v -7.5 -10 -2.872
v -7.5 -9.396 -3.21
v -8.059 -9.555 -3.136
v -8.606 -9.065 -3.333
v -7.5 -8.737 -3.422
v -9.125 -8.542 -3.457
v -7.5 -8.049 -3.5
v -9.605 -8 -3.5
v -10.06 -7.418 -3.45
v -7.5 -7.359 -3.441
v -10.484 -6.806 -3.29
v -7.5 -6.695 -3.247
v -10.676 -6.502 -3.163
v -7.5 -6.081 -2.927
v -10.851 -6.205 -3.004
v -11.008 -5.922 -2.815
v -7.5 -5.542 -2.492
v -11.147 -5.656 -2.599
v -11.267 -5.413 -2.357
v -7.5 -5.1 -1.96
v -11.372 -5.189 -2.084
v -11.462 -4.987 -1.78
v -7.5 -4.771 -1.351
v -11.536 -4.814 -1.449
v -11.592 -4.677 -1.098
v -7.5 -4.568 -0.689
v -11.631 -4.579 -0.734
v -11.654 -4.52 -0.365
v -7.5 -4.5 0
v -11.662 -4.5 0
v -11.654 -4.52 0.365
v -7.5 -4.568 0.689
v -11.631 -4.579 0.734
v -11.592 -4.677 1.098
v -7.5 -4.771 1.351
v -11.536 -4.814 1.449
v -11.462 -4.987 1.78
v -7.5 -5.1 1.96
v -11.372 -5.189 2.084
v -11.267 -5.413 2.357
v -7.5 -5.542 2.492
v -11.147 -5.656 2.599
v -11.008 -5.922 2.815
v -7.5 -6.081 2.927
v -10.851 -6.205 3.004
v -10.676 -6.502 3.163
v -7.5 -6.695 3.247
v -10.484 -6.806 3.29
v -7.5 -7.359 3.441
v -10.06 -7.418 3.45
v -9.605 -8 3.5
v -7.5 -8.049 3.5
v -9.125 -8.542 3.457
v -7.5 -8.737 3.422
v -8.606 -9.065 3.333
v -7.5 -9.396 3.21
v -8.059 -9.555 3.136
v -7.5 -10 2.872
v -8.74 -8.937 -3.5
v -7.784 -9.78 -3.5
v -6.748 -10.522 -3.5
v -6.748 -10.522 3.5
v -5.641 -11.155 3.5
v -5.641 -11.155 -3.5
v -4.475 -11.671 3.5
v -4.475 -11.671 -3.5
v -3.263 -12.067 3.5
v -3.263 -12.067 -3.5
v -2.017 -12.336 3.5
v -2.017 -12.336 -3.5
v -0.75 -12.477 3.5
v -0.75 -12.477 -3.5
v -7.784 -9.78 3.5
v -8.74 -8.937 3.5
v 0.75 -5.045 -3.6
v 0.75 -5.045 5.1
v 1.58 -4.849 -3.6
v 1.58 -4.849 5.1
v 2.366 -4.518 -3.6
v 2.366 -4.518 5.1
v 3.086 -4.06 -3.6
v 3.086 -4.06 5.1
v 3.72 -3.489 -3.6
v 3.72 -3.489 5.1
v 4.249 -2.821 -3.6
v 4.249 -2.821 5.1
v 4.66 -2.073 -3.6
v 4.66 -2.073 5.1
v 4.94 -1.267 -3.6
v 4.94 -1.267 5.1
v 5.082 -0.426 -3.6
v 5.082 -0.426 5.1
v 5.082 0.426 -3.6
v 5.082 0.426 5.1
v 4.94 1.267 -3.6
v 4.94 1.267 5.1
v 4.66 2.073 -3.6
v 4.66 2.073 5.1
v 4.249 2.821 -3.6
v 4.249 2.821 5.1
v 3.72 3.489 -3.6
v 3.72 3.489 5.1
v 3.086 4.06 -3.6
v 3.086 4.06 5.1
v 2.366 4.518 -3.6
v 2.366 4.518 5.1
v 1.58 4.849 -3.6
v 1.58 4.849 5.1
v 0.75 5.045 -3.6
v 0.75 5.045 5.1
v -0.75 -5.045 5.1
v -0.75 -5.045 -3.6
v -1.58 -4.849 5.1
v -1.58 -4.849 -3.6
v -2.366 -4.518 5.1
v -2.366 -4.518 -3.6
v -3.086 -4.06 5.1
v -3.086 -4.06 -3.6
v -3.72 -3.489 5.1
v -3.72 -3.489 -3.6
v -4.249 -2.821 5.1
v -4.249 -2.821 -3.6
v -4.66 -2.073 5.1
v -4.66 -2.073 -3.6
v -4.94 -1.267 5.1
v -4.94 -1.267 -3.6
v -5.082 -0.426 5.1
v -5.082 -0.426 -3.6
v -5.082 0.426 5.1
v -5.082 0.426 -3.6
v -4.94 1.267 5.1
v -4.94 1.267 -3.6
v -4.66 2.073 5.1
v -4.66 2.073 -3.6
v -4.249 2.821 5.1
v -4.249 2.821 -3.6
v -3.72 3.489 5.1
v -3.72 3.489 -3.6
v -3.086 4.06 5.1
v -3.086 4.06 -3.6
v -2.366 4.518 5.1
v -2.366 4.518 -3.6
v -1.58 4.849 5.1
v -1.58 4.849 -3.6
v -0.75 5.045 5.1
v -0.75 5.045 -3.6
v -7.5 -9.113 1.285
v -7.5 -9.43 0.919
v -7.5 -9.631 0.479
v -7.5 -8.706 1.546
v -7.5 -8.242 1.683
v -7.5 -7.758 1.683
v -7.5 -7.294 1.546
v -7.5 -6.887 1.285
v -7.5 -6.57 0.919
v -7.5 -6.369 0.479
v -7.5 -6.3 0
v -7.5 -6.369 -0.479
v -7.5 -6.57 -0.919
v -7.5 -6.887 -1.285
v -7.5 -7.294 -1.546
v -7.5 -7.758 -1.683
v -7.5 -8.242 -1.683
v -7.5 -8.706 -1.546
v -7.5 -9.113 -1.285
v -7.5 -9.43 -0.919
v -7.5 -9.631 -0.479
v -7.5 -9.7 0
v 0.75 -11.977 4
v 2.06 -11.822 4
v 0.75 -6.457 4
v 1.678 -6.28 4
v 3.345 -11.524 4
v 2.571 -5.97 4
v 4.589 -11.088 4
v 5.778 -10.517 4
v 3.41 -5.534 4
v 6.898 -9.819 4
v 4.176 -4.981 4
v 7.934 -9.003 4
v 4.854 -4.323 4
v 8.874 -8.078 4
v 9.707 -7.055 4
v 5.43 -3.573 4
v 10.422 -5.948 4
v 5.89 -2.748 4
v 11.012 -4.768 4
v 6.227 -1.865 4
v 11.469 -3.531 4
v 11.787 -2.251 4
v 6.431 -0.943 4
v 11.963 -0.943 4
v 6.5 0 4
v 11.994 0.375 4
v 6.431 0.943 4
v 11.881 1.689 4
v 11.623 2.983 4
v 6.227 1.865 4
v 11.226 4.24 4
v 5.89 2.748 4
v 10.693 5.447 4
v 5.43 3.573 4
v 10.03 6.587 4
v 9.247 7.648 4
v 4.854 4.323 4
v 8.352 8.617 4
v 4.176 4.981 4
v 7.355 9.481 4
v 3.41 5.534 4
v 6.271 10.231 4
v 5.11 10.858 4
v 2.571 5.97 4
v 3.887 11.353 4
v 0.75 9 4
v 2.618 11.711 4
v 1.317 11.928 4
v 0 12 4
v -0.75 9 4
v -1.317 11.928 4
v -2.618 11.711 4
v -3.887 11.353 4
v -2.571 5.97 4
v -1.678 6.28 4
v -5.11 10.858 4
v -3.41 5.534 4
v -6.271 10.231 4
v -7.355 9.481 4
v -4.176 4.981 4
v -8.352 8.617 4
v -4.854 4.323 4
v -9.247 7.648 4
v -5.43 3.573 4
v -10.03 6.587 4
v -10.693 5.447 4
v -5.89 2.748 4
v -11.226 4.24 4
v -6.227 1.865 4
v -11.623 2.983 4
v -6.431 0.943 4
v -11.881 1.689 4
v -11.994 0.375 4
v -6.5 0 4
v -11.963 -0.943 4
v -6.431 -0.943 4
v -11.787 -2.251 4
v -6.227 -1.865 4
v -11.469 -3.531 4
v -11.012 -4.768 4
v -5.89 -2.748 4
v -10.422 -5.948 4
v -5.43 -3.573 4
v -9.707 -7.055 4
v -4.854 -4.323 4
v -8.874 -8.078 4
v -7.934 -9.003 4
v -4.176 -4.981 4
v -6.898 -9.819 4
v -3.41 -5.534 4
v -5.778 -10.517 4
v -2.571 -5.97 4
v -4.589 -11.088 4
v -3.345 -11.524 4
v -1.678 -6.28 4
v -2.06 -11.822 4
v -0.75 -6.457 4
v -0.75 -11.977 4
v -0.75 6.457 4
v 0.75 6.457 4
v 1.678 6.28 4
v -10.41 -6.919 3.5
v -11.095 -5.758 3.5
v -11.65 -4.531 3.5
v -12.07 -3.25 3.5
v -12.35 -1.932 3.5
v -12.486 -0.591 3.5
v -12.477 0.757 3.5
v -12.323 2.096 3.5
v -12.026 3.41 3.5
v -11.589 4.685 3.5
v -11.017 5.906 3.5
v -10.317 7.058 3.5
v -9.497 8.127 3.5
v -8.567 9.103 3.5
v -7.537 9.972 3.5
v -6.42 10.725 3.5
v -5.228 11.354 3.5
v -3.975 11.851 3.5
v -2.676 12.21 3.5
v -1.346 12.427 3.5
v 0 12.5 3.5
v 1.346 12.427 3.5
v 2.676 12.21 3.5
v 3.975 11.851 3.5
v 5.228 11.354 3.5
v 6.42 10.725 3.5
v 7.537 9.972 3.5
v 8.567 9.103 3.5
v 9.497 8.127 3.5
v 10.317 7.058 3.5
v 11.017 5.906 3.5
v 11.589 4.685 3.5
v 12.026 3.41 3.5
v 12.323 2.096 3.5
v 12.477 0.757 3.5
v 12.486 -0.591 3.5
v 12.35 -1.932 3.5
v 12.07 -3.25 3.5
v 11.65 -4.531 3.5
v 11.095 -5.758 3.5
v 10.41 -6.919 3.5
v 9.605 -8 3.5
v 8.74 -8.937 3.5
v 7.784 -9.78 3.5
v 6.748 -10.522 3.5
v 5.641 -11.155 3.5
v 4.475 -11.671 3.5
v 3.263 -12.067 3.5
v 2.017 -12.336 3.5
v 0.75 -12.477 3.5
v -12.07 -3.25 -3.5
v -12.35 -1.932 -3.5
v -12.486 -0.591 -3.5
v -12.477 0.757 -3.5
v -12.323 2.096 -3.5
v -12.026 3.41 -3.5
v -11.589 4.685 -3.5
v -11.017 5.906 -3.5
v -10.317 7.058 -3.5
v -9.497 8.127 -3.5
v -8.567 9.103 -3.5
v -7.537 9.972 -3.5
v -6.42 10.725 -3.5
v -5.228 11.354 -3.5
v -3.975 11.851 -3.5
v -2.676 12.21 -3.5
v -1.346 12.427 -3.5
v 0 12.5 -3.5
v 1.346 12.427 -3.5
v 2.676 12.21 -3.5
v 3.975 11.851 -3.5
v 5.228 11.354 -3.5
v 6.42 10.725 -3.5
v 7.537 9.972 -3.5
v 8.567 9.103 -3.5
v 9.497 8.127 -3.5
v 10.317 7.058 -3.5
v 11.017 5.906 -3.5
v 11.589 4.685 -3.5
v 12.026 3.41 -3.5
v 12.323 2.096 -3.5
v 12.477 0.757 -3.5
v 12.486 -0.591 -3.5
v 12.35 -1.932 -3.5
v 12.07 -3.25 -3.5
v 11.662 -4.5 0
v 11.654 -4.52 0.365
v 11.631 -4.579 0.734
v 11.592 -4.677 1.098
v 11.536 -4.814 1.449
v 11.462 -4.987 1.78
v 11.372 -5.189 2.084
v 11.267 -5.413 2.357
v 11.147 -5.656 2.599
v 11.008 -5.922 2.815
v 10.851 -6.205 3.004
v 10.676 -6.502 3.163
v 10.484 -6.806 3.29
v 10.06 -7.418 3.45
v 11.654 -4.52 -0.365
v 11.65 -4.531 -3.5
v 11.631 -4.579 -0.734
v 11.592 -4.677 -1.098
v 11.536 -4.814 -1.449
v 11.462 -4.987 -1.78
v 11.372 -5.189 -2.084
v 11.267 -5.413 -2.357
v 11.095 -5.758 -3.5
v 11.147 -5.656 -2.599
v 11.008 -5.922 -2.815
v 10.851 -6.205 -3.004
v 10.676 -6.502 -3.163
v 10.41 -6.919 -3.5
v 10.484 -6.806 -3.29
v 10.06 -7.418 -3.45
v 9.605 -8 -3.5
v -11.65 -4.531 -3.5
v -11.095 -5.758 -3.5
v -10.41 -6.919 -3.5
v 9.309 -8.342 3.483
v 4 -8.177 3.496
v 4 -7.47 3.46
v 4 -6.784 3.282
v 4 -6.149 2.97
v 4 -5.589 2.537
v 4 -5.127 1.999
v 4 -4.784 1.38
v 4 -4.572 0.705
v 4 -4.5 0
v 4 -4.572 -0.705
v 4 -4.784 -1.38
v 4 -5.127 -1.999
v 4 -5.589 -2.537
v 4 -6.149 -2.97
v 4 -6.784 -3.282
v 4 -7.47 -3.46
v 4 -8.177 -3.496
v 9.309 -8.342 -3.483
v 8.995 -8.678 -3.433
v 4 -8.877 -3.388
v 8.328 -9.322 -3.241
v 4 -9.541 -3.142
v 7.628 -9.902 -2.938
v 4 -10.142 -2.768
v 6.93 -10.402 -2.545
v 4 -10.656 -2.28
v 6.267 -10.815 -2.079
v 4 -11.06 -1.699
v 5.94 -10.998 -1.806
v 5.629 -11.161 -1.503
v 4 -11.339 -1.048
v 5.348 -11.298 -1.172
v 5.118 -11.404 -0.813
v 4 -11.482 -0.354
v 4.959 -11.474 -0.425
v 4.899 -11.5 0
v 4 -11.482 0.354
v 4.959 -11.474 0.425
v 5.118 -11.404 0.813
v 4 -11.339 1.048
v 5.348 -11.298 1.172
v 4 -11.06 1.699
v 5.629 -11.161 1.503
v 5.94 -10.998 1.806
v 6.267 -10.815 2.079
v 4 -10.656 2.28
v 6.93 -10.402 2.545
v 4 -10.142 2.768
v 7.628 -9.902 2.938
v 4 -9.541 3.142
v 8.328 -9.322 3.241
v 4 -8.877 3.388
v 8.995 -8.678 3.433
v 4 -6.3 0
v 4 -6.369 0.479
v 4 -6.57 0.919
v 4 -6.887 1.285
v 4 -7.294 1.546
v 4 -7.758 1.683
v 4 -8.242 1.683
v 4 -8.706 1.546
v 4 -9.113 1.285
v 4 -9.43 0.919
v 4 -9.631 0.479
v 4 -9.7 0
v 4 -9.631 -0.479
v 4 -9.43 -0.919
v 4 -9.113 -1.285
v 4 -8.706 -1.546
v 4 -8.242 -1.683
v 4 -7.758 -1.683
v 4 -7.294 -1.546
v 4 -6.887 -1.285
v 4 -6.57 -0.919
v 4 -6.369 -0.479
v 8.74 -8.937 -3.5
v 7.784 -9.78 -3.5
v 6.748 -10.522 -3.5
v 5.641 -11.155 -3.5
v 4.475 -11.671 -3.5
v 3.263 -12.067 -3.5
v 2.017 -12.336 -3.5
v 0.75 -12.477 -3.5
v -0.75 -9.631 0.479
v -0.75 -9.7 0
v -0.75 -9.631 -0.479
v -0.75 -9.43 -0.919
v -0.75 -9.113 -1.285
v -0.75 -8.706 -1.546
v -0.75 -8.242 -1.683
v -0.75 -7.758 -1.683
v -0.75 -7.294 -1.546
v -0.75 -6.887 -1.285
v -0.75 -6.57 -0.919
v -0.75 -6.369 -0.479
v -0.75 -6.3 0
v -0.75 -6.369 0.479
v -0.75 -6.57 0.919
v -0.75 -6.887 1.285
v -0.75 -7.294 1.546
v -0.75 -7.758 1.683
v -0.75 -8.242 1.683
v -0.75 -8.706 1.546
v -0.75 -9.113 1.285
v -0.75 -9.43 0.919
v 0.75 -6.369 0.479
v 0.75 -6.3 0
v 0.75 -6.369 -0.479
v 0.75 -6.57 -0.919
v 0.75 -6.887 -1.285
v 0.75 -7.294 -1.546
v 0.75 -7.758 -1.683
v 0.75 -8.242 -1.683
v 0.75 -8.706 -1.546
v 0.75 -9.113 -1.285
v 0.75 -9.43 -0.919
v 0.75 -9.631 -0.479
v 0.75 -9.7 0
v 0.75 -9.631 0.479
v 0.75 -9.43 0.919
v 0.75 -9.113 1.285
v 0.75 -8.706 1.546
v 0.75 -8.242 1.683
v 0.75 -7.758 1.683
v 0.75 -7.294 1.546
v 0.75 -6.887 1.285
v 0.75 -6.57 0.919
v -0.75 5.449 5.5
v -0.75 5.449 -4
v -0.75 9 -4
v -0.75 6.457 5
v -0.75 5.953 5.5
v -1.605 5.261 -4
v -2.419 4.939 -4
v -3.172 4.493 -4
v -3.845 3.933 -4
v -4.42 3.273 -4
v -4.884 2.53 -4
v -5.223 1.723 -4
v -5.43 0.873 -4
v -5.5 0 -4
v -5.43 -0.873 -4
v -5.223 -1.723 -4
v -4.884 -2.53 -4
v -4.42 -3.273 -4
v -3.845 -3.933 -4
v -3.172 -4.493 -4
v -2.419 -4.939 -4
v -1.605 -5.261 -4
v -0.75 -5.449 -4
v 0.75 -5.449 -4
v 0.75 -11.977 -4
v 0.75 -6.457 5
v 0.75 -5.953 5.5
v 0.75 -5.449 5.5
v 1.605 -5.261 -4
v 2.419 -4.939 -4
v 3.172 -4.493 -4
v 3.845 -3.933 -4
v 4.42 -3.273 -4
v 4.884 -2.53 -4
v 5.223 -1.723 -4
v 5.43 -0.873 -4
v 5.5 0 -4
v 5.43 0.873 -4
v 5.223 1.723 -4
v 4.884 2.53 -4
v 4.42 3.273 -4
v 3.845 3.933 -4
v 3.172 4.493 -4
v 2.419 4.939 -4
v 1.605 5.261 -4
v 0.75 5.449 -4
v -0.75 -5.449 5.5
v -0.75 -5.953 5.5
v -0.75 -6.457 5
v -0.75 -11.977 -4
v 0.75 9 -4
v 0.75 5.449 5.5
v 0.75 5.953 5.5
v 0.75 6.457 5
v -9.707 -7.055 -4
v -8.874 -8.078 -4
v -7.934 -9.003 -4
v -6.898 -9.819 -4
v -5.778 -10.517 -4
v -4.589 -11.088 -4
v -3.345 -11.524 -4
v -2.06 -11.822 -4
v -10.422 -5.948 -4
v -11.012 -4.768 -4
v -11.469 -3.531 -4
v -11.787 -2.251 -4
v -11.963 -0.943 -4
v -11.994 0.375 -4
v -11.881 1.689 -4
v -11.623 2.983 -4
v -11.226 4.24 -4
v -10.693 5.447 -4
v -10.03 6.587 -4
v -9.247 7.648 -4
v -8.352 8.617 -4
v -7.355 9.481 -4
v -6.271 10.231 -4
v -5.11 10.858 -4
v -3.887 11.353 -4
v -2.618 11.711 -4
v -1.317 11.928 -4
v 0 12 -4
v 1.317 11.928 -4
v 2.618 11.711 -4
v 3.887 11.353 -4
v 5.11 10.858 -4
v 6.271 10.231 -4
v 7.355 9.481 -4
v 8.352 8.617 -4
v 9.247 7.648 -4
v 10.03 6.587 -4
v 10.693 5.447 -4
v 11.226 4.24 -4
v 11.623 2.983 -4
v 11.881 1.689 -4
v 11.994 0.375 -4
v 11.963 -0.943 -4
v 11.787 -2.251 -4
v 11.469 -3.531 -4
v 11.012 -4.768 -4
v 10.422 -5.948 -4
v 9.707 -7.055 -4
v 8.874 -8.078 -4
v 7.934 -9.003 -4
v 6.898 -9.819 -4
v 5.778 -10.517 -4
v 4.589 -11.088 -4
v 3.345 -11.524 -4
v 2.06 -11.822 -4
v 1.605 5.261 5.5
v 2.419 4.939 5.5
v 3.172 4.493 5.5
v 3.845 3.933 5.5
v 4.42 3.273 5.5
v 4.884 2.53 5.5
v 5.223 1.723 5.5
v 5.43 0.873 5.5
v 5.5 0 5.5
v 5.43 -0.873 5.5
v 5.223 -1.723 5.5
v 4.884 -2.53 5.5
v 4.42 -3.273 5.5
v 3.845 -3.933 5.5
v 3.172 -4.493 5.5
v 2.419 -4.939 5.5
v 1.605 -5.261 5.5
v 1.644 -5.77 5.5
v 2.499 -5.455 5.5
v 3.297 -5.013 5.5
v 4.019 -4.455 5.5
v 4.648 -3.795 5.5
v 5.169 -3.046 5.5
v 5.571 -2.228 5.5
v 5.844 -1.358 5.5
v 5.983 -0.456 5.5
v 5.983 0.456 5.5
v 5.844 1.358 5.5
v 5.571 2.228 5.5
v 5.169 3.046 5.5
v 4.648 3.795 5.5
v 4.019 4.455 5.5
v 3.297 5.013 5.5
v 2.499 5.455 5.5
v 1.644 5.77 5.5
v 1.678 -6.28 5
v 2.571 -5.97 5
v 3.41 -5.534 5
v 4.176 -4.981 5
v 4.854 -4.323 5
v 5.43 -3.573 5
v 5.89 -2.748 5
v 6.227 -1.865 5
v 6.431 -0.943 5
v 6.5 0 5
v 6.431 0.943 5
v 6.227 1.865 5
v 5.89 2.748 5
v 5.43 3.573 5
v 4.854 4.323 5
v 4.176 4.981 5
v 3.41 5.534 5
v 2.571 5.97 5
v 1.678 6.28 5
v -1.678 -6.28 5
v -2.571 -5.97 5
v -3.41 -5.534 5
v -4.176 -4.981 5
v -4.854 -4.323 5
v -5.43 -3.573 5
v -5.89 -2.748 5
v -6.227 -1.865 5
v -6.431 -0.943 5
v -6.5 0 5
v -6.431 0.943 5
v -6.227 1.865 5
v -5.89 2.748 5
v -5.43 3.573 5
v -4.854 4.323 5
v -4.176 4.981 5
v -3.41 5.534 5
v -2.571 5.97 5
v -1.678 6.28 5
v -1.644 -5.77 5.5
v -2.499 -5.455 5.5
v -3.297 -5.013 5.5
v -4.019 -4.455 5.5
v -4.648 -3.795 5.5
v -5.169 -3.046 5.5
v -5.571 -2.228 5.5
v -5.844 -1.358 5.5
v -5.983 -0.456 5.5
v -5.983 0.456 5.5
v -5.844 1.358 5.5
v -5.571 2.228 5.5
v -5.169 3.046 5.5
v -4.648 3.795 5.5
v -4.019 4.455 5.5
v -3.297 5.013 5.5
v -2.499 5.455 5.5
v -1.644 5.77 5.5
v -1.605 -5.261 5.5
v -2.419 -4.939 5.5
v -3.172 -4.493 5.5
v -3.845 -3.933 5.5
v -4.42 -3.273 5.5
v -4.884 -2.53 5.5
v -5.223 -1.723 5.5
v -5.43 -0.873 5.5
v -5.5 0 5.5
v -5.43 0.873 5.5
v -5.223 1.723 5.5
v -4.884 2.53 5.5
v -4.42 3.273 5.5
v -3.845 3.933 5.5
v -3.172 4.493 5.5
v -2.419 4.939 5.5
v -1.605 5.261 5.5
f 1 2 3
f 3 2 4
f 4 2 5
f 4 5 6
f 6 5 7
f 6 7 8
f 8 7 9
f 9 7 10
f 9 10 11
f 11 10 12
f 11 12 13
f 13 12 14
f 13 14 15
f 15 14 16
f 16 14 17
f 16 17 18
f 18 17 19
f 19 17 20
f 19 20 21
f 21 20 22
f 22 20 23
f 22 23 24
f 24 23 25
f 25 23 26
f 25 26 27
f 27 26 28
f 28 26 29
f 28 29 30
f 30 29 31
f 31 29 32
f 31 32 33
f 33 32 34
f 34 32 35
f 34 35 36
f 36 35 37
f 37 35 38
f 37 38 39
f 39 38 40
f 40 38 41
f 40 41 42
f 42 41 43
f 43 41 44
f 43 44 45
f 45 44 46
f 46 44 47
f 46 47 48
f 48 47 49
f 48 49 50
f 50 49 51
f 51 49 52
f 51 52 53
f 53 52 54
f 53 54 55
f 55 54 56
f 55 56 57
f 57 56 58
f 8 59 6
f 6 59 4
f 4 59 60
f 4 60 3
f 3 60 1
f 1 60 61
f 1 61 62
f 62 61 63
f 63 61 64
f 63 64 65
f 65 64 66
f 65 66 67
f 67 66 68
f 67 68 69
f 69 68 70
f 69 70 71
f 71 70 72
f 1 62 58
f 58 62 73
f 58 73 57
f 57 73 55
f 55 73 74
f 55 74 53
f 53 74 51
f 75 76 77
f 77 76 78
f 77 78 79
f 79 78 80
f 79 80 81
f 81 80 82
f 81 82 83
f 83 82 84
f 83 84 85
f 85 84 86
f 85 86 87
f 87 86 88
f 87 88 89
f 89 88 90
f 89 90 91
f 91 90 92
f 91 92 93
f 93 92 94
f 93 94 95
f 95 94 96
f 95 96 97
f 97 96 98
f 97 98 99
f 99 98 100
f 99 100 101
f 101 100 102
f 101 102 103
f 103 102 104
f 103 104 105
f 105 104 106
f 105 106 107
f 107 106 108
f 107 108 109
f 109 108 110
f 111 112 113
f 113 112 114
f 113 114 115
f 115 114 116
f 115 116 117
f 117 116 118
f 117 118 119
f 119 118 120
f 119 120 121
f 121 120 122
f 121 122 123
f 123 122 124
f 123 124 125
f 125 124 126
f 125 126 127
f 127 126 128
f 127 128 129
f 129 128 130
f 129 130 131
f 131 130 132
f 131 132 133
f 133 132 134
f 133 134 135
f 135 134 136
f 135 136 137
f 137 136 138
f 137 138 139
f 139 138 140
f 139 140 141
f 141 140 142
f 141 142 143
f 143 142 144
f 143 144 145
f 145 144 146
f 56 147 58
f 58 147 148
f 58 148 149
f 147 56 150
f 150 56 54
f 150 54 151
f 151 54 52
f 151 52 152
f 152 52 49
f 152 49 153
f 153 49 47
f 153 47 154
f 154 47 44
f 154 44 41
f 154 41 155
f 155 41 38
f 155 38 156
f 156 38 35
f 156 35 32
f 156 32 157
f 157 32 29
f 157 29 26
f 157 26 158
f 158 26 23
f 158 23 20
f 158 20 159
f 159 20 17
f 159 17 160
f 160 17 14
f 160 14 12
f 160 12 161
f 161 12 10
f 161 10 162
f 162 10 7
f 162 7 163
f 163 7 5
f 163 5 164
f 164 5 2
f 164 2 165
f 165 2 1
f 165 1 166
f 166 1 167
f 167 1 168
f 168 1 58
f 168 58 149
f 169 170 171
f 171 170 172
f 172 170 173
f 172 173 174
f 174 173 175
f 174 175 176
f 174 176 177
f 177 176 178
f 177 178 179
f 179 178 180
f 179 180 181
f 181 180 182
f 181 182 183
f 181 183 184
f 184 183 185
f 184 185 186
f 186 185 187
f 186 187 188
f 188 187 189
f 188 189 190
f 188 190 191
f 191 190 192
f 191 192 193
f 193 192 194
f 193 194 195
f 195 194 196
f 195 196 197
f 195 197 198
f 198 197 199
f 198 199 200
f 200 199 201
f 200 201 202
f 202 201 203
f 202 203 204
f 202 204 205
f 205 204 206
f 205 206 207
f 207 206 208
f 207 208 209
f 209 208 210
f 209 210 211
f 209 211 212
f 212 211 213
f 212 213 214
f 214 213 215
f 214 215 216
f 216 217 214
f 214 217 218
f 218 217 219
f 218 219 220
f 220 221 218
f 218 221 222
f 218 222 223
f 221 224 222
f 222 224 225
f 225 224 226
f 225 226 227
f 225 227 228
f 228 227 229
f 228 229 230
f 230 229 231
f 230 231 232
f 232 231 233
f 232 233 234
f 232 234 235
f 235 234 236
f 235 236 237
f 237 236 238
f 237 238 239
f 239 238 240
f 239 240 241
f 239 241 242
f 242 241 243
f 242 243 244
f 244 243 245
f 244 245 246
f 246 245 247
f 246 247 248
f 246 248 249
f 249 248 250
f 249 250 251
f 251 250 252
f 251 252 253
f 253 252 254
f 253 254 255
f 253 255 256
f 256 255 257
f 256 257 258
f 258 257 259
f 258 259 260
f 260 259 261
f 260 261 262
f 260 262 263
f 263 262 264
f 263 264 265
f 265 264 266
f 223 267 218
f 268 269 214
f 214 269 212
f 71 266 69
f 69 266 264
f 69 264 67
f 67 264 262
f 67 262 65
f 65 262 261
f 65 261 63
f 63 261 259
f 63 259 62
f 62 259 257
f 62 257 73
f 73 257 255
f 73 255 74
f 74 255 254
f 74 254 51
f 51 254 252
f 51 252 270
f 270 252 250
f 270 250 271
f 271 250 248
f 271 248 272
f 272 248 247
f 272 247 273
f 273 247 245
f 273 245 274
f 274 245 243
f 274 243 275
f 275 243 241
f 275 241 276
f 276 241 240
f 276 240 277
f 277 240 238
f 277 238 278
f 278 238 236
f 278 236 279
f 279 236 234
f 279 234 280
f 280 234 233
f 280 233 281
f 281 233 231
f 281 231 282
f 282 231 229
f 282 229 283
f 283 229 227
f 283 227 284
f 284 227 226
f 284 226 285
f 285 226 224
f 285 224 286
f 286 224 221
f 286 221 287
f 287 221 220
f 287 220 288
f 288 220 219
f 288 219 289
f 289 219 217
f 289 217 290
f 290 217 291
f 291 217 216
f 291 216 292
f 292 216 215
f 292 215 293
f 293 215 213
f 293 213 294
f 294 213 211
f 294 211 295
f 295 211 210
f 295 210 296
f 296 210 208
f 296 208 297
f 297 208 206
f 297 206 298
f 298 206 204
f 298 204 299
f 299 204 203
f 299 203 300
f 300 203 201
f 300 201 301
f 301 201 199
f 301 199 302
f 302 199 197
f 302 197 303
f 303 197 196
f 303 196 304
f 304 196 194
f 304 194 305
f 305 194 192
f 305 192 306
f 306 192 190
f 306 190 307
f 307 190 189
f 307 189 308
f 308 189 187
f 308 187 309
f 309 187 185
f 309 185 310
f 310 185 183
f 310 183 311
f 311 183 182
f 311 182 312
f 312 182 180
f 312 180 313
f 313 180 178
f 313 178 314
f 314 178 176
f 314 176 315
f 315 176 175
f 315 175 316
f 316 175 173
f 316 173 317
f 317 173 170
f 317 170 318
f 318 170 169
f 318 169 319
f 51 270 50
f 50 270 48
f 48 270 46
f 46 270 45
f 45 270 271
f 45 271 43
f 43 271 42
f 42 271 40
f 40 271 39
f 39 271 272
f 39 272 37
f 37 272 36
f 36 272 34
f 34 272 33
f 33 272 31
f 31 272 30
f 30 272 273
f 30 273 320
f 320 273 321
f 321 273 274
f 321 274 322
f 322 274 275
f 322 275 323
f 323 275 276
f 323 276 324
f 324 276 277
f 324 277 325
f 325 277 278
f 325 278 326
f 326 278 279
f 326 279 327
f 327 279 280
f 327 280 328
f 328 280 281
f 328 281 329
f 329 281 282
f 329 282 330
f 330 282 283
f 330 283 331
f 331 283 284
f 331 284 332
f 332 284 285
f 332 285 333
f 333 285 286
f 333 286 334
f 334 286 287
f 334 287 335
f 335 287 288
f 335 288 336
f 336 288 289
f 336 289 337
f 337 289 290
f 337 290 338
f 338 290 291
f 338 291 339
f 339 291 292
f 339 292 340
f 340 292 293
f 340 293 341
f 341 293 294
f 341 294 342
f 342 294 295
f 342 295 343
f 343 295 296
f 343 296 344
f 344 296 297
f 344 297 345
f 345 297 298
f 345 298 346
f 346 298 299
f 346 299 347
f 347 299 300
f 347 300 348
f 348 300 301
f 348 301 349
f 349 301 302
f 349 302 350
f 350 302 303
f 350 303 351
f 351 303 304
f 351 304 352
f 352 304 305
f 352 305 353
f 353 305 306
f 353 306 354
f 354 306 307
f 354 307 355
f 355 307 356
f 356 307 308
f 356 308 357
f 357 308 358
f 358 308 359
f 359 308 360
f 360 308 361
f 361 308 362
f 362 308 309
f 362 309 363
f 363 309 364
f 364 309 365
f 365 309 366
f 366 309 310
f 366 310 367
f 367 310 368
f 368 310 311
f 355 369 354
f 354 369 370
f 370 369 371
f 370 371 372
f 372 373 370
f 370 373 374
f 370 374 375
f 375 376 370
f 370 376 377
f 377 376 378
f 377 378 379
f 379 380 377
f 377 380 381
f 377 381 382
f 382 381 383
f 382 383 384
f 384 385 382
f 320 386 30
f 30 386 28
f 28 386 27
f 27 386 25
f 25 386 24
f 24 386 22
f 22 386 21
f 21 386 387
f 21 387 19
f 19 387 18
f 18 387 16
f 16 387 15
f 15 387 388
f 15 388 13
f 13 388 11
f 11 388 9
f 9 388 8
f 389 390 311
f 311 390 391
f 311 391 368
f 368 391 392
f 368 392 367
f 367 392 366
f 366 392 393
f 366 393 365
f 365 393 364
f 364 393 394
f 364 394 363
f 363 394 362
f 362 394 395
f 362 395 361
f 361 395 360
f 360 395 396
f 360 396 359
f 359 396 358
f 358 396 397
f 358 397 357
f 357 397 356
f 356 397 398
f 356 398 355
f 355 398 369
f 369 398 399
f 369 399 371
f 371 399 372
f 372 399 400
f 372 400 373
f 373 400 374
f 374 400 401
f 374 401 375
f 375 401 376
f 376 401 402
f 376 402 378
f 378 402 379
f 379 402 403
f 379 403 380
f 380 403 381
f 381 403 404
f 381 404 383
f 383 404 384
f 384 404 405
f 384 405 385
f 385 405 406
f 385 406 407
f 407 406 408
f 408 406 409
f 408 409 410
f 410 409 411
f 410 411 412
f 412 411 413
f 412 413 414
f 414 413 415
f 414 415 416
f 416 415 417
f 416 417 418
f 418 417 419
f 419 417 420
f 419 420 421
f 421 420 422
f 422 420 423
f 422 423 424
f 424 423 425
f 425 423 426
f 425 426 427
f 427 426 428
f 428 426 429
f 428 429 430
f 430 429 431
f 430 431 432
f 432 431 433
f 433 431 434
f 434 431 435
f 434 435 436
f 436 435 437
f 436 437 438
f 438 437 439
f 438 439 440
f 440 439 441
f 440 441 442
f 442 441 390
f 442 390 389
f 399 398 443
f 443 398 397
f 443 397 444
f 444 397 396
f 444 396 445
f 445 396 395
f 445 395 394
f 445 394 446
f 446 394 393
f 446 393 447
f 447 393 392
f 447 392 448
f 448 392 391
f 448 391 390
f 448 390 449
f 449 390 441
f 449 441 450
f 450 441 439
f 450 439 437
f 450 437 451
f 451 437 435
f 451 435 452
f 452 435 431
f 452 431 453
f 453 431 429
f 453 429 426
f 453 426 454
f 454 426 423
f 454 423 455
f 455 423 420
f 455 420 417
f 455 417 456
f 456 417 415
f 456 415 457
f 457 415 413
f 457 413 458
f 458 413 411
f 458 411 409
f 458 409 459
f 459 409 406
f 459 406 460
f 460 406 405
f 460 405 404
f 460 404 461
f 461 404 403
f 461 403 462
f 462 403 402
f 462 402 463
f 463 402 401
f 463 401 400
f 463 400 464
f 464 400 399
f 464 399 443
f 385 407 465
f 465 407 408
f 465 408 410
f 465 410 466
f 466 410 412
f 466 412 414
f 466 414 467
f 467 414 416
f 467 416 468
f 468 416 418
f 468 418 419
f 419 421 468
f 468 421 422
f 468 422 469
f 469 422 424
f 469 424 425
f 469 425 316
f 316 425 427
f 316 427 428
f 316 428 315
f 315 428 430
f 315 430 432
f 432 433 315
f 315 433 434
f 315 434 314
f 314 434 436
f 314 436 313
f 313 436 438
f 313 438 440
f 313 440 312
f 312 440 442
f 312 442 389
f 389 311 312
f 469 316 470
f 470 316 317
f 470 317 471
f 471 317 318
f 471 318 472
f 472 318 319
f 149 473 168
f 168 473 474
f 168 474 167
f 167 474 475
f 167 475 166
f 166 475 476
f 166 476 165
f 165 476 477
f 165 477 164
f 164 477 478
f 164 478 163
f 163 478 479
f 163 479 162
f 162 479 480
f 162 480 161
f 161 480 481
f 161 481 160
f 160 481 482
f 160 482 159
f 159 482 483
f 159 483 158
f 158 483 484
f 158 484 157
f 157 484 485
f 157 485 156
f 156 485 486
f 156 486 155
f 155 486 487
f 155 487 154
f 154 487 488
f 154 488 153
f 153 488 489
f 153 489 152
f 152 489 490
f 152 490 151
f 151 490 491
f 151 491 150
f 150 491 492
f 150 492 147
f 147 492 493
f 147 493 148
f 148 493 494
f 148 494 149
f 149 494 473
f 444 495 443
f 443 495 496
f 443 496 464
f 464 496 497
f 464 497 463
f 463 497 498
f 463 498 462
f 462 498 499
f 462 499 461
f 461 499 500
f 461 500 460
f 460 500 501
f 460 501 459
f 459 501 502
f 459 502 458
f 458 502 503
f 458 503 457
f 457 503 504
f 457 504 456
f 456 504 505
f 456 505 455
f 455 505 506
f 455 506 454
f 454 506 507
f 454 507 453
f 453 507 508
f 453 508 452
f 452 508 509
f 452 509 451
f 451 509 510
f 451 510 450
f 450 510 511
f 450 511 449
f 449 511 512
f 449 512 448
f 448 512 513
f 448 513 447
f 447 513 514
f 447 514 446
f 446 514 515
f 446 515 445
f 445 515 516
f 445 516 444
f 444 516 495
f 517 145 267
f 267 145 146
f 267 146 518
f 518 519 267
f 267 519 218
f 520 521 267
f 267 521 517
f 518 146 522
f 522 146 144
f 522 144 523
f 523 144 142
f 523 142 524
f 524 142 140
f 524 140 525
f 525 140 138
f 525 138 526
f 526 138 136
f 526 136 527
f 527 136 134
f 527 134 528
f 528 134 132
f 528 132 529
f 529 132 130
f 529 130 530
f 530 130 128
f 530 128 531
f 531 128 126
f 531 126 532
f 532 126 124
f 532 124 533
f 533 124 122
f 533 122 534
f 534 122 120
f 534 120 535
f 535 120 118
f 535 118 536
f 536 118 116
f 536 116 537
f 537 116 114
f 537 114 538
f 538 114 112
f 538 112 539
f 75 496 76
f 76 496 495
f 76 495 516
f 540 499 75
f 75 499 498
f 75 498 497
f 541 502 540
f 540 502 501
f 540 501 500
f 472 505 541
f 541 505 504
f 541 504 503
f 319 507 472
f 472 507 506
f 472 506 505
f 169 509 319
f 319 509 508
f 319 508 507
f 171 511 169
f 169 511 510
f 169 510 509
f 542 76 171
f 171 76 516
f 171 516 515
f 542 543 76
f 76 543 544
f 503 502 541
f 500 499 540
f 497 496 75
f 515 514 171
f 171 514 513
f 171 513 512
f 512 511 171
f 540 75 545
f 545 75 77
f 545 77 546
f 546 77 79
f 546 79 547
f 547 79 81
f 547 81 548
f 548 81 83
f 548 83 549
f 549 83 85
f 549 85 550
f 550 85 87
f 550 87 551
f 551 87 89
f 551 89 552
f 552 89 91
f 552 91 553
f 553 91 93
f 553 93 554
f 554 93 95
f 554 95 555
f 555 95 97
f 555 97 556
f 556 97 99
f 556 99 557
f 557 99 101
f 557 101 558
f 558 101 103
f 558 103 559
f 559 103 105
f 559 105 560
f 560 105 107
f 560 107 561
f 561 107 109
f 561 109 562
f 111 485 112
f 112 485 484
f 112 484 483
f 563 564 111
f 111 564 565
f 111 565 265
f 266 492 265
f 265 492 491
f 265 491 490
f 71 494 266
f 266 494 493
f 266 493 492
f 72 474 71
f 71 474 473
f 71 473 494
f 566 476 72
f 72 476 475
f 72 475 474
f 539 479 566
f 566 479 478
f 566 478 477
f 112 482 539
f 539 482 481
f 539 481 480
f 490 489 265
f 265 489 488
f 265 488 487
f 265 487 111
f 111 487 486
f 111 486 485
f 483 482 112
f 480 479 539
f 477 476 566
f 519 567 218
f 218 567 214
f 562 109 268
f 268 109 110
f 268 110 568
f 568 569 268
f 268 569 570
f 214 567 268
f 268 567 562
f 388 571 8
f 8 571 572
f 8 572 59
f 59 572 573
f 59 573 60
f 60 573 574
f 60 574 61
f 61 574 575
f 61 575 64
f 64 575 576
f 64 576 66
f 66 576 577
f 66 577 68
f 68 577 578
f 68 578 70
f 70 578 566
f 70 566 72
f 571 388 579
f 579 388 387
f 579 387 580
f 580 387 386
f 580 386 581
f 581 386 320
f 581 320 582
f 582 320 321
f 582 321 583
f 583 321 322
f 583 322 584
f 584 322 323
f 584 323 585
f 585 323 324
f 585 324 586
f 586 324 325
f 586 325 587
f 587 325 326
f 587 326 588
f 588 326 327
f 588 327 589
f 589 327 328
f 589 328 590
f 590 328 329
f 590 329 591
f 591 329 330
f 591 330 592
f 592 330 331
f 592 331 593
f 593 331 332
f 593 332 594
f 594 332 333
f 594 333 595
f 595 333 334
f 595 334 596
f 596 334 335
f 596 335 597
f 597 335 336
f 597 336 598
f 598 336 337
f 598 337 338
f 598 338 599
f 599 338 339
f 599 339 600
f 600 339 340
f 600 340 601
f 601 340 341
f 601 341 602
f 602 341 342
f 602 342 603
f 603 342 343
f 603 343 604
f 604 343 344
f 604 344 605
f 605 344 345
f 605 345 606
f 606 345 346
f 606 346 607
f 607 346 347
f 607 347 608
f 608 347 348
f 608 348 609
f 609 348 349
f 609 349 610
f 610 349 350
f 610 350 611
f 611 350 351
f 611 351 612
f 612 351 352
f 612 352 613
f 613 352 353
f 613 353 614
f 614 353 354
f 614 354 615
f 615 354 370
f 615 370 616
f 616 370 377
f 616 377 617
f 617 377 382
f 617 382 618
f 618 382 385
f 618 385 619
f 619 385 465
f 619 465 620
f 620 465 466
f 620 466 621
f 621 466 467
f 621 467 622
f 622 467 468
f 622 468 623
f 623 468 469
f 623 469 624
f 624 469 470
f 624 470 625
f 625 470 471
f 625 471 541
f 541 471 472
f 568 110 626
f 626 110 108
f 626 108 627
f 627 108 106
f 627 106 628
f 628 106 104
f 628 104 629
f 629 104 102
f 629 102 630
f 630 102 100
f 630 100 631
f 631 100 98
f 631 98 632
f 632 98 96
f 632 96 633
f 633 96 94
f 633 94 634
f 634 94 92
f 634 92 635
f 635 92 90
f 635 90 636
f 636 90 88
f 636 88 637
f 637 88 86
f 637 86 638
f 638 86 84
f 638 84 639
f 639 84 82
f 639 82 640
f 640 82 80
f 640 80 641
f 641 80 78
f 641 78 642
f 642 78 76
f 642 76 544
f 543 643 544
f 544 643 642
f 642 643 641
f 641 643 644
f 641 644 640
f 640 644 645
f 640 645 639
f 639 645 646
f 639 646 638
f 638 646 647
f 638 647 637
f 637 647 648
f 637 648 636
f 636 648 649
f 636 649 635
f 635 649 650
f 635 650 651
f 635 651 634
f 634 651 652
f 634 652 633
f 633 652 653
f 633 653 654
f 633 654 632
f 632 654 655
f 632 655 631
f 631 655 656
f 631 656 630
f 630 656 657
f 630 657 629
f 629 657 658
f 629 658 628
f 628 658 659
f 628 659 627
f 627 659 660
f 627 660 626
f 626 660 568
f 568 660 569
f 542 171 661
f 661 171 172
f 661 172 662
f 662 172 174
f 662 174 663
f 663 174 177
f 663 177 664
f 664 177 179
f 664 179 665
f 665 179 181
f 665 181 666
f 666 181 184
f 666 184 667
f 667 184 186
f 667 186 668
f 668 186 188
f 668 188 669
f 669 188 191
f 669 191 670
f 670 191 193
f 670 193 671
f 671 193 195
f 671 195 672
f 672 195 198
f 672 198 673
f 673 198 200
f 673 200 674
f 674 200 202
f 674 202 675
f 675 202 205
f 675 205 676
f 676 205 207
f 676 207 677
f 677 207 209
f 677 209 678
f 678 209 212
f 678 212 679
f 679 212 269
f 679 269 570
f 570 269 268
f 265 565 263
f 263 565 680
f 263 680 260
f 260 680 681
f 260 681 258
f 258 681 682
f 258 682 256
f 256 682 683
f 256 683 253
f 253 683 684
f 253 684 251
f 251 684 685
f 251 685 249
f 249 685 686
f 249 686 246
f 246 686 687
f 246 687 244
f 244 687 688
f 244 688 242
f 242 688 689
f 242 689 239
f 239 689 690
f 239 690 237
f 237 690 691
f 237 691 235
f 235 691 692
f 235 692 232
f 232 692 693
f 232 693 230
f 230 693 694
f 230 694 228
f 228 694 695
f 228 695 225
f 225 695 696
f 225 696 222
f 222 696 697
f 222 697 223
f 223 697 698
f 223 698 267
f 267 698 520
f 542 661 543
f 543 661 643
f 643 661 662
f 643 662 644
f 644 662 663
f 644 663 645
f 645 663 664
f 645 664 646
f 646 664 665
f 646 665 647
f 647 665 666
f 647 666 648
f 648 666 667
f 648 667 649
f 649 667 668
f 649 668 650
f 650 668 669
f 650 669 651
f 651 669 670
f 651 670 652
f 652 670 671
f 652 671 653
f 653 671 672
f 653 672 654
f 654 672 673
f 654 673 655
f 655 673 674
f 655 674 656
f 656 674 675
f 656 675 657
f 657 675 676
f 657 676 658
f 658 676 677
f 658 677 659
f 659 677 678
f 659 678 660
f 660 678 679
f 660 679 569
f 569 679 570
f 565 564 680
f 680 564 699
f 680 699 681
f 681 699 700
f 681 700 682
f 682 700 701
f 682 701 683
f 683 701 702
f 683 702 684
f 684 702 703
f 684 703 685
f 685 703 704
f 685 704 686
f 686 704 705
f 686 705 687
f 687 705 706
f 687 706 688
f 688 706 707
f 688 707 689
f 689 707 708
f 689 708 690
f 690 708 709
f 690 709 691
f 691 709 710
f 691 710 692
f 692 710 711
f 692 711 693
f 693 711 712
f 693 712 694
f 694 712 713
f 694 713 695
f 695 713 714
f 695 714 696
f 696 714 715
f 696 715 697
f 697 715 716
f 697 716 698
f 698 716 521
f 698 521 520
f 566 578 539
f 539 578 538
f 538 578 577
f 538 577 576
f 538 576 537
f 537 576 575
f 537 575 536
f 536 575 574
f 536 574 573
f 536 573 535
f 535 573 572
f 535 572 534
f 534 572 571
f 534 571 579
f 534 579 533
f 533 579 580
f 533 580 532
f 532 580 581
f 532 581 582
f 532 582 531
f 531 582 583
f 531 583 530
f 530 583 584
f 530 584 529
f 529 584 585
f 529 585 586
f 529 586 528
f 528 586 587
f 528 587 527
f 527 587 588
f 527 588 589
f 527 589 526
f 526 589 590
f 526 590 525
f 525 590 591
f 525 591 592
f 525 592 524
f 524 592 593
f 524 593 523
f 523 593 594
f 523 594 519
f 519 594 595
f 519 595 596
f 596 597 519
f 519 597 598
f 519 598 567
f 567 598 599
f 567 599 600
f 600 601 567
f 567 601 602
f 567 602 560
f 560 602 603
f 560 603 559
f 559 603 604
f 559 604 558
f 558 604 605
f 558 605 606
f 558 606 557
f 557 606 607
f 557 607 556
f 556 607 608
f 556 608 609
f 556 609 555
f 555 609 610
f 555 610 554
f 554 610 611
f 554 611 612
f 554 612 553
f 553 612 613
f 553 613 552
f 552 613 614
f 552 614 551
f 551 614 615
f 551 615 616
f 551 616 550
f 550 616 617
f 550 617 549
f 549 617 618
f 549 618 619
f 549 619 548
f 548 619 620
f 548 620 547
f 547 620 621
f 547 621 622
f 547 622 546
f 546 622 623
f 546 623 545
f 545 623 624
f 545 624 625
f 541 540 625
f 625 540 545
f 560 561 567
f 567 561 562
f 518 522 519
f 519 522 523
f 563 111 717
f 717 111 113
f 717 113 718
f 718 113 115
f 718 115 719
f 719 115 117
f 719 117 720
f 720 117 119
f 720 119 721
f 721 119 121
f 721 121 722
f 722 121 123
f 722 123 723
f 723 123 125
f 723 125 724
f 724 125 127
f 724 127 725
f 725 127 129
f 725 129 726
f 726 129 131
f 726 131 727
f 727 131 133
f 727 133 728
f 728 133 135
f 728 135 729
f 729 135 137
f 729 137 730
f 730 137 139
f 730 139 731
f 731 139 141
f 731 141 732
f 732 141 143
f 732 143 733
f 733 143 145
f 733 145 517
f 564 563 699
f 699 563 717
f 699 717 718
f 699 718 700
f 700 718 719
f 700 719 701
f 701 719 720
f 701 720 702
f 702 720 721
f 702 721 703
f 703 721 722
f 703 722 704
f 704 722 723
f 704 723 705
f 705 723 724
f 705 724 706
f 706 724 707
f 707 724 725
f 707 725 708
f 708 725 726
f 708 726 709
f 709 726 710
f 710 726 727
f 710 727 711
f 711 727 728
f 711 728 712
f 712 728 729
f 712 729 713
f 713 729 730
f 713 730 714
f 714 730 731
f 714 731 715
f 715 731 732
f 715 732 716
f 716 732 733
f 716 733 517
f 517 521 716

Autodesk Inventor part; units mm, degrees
sketch "Sketch_1" plane through (0, 0, 0) normal (1, 0, 0) x (0, 1, 0)
  line L0 (0, -4) -> (0, 5.5)
  line L1 (6, 5.5) -> (5.5, 5.5)
  line L2 (5.5, 5.5) -> (5, 5)
  line L3 (5, 5) -> (5, -3.5)
  line L4 (5, -3.5) -> (5.5, -4)
  line L5 (5.5, -4) -> (12, -4)
  line L6 (12, -4) -> (12.5, -3.5)
  line L7 (12.5, -3.5) -> (12.5, 3.5)
  line L8 (12.5, 3.5) -> (12, 4)
  line L9 (12, 4) -> (6.5, 4)
  line L10 (6.5, 4) -> (6.5, 5)
  line L11 (6.5, 5) -> (6, 5.5)
revolve "Revolution1" add sketch "Sketch_1" angle 360 about axis through (0, 0, -4) along (0, 0, -1)
sketch "Sketch_2" plane through (0, 0, 0) normal (0, 0, 1) x (1, 0, 0)
  line L0 (-0.75, -12.5) -> (0.75, -12.5)
  line L1 (0.75, -12.5) -> (0.75, 9)
  line L2 (0.75, 9) -> (-0.75, 9)
  line L3 (-0.75, 9) -> (-0.75, -12.5)
extrude "Extrusion1" cut sketch "Sketch_2" along normal mid plane 32
sketch "Sketch_3" plane through (0, 0, 0) normal (0, 0, 1) x (1, 0, 0)
  line L0 (0, -8) -> (12.5, -8)
  line L1 (12.5, -8) -> (12.5, -11)
  line L2 (12.5, -11) -> (4, -11)
  line L3 (4, -11) -> (4, -9.75)
  line L4 (4, -9.75) -> (0, -9.75)
  line L5 (0, -9.75) -> (0, -8)
  line L6 (0, -8) -> (12.5, -8)
ref_plane "body_screw_XY" through (4, -8, 0) normal (1, 0, 0) x (0, 0, -1)
ref_plane "body_screw_YZ" through (4, -8, 0) normal (0, 0, -1) x (0, 1, 0)
ref_plane "body_screw_ZX" through (4, -8, 0) normal (0, 1, 0) x (1, 0, 0)
sketch "スケッチ5" plane through (0, 0, -4) normal (0, 0, -1) x (-1, 0, 0)
  circle A0 centre (0, 0) radius 5.1
  dimension "d12" = 10.2
extrude "押し出し2" cut sketch "スケッチ5" against normal through all
ref_plane "作業平面4" through (12.5, 0, 0) normal (1, 0, 0) x (0, 1, 0)
sketch "スケッチ6" plane through (12.5, 0, 0) normal (1, 0, 0) x (0, 1, 0)
  circle A0 centre (-8, 0) radius 1.75 projected
  circle A1 centre (-8, 0) radius 1.7
  circle A2 centre (-8, 0) radius 3.5
  point P0 (0, 0)
  dimension "d15" = 3.4
  dimension "d16" = 7
extrude "押し出し3" cut sketch "スケッチ6" against normal through all contours A1
extrude "押し出し4" cut sketch "スケッチ6" against normal blind 8.5 contours A0 | A2
ref_plane "作業平面5" through (-12.5, 0, 0) normal (1, 0, 0) x (0, 1, 0)
extrude "押し出し5" cut sketch "スケッチ6" along normal blind 5 from surface at -25 contours A0 | A2
properties part number "PSCBNJ10-13b"
